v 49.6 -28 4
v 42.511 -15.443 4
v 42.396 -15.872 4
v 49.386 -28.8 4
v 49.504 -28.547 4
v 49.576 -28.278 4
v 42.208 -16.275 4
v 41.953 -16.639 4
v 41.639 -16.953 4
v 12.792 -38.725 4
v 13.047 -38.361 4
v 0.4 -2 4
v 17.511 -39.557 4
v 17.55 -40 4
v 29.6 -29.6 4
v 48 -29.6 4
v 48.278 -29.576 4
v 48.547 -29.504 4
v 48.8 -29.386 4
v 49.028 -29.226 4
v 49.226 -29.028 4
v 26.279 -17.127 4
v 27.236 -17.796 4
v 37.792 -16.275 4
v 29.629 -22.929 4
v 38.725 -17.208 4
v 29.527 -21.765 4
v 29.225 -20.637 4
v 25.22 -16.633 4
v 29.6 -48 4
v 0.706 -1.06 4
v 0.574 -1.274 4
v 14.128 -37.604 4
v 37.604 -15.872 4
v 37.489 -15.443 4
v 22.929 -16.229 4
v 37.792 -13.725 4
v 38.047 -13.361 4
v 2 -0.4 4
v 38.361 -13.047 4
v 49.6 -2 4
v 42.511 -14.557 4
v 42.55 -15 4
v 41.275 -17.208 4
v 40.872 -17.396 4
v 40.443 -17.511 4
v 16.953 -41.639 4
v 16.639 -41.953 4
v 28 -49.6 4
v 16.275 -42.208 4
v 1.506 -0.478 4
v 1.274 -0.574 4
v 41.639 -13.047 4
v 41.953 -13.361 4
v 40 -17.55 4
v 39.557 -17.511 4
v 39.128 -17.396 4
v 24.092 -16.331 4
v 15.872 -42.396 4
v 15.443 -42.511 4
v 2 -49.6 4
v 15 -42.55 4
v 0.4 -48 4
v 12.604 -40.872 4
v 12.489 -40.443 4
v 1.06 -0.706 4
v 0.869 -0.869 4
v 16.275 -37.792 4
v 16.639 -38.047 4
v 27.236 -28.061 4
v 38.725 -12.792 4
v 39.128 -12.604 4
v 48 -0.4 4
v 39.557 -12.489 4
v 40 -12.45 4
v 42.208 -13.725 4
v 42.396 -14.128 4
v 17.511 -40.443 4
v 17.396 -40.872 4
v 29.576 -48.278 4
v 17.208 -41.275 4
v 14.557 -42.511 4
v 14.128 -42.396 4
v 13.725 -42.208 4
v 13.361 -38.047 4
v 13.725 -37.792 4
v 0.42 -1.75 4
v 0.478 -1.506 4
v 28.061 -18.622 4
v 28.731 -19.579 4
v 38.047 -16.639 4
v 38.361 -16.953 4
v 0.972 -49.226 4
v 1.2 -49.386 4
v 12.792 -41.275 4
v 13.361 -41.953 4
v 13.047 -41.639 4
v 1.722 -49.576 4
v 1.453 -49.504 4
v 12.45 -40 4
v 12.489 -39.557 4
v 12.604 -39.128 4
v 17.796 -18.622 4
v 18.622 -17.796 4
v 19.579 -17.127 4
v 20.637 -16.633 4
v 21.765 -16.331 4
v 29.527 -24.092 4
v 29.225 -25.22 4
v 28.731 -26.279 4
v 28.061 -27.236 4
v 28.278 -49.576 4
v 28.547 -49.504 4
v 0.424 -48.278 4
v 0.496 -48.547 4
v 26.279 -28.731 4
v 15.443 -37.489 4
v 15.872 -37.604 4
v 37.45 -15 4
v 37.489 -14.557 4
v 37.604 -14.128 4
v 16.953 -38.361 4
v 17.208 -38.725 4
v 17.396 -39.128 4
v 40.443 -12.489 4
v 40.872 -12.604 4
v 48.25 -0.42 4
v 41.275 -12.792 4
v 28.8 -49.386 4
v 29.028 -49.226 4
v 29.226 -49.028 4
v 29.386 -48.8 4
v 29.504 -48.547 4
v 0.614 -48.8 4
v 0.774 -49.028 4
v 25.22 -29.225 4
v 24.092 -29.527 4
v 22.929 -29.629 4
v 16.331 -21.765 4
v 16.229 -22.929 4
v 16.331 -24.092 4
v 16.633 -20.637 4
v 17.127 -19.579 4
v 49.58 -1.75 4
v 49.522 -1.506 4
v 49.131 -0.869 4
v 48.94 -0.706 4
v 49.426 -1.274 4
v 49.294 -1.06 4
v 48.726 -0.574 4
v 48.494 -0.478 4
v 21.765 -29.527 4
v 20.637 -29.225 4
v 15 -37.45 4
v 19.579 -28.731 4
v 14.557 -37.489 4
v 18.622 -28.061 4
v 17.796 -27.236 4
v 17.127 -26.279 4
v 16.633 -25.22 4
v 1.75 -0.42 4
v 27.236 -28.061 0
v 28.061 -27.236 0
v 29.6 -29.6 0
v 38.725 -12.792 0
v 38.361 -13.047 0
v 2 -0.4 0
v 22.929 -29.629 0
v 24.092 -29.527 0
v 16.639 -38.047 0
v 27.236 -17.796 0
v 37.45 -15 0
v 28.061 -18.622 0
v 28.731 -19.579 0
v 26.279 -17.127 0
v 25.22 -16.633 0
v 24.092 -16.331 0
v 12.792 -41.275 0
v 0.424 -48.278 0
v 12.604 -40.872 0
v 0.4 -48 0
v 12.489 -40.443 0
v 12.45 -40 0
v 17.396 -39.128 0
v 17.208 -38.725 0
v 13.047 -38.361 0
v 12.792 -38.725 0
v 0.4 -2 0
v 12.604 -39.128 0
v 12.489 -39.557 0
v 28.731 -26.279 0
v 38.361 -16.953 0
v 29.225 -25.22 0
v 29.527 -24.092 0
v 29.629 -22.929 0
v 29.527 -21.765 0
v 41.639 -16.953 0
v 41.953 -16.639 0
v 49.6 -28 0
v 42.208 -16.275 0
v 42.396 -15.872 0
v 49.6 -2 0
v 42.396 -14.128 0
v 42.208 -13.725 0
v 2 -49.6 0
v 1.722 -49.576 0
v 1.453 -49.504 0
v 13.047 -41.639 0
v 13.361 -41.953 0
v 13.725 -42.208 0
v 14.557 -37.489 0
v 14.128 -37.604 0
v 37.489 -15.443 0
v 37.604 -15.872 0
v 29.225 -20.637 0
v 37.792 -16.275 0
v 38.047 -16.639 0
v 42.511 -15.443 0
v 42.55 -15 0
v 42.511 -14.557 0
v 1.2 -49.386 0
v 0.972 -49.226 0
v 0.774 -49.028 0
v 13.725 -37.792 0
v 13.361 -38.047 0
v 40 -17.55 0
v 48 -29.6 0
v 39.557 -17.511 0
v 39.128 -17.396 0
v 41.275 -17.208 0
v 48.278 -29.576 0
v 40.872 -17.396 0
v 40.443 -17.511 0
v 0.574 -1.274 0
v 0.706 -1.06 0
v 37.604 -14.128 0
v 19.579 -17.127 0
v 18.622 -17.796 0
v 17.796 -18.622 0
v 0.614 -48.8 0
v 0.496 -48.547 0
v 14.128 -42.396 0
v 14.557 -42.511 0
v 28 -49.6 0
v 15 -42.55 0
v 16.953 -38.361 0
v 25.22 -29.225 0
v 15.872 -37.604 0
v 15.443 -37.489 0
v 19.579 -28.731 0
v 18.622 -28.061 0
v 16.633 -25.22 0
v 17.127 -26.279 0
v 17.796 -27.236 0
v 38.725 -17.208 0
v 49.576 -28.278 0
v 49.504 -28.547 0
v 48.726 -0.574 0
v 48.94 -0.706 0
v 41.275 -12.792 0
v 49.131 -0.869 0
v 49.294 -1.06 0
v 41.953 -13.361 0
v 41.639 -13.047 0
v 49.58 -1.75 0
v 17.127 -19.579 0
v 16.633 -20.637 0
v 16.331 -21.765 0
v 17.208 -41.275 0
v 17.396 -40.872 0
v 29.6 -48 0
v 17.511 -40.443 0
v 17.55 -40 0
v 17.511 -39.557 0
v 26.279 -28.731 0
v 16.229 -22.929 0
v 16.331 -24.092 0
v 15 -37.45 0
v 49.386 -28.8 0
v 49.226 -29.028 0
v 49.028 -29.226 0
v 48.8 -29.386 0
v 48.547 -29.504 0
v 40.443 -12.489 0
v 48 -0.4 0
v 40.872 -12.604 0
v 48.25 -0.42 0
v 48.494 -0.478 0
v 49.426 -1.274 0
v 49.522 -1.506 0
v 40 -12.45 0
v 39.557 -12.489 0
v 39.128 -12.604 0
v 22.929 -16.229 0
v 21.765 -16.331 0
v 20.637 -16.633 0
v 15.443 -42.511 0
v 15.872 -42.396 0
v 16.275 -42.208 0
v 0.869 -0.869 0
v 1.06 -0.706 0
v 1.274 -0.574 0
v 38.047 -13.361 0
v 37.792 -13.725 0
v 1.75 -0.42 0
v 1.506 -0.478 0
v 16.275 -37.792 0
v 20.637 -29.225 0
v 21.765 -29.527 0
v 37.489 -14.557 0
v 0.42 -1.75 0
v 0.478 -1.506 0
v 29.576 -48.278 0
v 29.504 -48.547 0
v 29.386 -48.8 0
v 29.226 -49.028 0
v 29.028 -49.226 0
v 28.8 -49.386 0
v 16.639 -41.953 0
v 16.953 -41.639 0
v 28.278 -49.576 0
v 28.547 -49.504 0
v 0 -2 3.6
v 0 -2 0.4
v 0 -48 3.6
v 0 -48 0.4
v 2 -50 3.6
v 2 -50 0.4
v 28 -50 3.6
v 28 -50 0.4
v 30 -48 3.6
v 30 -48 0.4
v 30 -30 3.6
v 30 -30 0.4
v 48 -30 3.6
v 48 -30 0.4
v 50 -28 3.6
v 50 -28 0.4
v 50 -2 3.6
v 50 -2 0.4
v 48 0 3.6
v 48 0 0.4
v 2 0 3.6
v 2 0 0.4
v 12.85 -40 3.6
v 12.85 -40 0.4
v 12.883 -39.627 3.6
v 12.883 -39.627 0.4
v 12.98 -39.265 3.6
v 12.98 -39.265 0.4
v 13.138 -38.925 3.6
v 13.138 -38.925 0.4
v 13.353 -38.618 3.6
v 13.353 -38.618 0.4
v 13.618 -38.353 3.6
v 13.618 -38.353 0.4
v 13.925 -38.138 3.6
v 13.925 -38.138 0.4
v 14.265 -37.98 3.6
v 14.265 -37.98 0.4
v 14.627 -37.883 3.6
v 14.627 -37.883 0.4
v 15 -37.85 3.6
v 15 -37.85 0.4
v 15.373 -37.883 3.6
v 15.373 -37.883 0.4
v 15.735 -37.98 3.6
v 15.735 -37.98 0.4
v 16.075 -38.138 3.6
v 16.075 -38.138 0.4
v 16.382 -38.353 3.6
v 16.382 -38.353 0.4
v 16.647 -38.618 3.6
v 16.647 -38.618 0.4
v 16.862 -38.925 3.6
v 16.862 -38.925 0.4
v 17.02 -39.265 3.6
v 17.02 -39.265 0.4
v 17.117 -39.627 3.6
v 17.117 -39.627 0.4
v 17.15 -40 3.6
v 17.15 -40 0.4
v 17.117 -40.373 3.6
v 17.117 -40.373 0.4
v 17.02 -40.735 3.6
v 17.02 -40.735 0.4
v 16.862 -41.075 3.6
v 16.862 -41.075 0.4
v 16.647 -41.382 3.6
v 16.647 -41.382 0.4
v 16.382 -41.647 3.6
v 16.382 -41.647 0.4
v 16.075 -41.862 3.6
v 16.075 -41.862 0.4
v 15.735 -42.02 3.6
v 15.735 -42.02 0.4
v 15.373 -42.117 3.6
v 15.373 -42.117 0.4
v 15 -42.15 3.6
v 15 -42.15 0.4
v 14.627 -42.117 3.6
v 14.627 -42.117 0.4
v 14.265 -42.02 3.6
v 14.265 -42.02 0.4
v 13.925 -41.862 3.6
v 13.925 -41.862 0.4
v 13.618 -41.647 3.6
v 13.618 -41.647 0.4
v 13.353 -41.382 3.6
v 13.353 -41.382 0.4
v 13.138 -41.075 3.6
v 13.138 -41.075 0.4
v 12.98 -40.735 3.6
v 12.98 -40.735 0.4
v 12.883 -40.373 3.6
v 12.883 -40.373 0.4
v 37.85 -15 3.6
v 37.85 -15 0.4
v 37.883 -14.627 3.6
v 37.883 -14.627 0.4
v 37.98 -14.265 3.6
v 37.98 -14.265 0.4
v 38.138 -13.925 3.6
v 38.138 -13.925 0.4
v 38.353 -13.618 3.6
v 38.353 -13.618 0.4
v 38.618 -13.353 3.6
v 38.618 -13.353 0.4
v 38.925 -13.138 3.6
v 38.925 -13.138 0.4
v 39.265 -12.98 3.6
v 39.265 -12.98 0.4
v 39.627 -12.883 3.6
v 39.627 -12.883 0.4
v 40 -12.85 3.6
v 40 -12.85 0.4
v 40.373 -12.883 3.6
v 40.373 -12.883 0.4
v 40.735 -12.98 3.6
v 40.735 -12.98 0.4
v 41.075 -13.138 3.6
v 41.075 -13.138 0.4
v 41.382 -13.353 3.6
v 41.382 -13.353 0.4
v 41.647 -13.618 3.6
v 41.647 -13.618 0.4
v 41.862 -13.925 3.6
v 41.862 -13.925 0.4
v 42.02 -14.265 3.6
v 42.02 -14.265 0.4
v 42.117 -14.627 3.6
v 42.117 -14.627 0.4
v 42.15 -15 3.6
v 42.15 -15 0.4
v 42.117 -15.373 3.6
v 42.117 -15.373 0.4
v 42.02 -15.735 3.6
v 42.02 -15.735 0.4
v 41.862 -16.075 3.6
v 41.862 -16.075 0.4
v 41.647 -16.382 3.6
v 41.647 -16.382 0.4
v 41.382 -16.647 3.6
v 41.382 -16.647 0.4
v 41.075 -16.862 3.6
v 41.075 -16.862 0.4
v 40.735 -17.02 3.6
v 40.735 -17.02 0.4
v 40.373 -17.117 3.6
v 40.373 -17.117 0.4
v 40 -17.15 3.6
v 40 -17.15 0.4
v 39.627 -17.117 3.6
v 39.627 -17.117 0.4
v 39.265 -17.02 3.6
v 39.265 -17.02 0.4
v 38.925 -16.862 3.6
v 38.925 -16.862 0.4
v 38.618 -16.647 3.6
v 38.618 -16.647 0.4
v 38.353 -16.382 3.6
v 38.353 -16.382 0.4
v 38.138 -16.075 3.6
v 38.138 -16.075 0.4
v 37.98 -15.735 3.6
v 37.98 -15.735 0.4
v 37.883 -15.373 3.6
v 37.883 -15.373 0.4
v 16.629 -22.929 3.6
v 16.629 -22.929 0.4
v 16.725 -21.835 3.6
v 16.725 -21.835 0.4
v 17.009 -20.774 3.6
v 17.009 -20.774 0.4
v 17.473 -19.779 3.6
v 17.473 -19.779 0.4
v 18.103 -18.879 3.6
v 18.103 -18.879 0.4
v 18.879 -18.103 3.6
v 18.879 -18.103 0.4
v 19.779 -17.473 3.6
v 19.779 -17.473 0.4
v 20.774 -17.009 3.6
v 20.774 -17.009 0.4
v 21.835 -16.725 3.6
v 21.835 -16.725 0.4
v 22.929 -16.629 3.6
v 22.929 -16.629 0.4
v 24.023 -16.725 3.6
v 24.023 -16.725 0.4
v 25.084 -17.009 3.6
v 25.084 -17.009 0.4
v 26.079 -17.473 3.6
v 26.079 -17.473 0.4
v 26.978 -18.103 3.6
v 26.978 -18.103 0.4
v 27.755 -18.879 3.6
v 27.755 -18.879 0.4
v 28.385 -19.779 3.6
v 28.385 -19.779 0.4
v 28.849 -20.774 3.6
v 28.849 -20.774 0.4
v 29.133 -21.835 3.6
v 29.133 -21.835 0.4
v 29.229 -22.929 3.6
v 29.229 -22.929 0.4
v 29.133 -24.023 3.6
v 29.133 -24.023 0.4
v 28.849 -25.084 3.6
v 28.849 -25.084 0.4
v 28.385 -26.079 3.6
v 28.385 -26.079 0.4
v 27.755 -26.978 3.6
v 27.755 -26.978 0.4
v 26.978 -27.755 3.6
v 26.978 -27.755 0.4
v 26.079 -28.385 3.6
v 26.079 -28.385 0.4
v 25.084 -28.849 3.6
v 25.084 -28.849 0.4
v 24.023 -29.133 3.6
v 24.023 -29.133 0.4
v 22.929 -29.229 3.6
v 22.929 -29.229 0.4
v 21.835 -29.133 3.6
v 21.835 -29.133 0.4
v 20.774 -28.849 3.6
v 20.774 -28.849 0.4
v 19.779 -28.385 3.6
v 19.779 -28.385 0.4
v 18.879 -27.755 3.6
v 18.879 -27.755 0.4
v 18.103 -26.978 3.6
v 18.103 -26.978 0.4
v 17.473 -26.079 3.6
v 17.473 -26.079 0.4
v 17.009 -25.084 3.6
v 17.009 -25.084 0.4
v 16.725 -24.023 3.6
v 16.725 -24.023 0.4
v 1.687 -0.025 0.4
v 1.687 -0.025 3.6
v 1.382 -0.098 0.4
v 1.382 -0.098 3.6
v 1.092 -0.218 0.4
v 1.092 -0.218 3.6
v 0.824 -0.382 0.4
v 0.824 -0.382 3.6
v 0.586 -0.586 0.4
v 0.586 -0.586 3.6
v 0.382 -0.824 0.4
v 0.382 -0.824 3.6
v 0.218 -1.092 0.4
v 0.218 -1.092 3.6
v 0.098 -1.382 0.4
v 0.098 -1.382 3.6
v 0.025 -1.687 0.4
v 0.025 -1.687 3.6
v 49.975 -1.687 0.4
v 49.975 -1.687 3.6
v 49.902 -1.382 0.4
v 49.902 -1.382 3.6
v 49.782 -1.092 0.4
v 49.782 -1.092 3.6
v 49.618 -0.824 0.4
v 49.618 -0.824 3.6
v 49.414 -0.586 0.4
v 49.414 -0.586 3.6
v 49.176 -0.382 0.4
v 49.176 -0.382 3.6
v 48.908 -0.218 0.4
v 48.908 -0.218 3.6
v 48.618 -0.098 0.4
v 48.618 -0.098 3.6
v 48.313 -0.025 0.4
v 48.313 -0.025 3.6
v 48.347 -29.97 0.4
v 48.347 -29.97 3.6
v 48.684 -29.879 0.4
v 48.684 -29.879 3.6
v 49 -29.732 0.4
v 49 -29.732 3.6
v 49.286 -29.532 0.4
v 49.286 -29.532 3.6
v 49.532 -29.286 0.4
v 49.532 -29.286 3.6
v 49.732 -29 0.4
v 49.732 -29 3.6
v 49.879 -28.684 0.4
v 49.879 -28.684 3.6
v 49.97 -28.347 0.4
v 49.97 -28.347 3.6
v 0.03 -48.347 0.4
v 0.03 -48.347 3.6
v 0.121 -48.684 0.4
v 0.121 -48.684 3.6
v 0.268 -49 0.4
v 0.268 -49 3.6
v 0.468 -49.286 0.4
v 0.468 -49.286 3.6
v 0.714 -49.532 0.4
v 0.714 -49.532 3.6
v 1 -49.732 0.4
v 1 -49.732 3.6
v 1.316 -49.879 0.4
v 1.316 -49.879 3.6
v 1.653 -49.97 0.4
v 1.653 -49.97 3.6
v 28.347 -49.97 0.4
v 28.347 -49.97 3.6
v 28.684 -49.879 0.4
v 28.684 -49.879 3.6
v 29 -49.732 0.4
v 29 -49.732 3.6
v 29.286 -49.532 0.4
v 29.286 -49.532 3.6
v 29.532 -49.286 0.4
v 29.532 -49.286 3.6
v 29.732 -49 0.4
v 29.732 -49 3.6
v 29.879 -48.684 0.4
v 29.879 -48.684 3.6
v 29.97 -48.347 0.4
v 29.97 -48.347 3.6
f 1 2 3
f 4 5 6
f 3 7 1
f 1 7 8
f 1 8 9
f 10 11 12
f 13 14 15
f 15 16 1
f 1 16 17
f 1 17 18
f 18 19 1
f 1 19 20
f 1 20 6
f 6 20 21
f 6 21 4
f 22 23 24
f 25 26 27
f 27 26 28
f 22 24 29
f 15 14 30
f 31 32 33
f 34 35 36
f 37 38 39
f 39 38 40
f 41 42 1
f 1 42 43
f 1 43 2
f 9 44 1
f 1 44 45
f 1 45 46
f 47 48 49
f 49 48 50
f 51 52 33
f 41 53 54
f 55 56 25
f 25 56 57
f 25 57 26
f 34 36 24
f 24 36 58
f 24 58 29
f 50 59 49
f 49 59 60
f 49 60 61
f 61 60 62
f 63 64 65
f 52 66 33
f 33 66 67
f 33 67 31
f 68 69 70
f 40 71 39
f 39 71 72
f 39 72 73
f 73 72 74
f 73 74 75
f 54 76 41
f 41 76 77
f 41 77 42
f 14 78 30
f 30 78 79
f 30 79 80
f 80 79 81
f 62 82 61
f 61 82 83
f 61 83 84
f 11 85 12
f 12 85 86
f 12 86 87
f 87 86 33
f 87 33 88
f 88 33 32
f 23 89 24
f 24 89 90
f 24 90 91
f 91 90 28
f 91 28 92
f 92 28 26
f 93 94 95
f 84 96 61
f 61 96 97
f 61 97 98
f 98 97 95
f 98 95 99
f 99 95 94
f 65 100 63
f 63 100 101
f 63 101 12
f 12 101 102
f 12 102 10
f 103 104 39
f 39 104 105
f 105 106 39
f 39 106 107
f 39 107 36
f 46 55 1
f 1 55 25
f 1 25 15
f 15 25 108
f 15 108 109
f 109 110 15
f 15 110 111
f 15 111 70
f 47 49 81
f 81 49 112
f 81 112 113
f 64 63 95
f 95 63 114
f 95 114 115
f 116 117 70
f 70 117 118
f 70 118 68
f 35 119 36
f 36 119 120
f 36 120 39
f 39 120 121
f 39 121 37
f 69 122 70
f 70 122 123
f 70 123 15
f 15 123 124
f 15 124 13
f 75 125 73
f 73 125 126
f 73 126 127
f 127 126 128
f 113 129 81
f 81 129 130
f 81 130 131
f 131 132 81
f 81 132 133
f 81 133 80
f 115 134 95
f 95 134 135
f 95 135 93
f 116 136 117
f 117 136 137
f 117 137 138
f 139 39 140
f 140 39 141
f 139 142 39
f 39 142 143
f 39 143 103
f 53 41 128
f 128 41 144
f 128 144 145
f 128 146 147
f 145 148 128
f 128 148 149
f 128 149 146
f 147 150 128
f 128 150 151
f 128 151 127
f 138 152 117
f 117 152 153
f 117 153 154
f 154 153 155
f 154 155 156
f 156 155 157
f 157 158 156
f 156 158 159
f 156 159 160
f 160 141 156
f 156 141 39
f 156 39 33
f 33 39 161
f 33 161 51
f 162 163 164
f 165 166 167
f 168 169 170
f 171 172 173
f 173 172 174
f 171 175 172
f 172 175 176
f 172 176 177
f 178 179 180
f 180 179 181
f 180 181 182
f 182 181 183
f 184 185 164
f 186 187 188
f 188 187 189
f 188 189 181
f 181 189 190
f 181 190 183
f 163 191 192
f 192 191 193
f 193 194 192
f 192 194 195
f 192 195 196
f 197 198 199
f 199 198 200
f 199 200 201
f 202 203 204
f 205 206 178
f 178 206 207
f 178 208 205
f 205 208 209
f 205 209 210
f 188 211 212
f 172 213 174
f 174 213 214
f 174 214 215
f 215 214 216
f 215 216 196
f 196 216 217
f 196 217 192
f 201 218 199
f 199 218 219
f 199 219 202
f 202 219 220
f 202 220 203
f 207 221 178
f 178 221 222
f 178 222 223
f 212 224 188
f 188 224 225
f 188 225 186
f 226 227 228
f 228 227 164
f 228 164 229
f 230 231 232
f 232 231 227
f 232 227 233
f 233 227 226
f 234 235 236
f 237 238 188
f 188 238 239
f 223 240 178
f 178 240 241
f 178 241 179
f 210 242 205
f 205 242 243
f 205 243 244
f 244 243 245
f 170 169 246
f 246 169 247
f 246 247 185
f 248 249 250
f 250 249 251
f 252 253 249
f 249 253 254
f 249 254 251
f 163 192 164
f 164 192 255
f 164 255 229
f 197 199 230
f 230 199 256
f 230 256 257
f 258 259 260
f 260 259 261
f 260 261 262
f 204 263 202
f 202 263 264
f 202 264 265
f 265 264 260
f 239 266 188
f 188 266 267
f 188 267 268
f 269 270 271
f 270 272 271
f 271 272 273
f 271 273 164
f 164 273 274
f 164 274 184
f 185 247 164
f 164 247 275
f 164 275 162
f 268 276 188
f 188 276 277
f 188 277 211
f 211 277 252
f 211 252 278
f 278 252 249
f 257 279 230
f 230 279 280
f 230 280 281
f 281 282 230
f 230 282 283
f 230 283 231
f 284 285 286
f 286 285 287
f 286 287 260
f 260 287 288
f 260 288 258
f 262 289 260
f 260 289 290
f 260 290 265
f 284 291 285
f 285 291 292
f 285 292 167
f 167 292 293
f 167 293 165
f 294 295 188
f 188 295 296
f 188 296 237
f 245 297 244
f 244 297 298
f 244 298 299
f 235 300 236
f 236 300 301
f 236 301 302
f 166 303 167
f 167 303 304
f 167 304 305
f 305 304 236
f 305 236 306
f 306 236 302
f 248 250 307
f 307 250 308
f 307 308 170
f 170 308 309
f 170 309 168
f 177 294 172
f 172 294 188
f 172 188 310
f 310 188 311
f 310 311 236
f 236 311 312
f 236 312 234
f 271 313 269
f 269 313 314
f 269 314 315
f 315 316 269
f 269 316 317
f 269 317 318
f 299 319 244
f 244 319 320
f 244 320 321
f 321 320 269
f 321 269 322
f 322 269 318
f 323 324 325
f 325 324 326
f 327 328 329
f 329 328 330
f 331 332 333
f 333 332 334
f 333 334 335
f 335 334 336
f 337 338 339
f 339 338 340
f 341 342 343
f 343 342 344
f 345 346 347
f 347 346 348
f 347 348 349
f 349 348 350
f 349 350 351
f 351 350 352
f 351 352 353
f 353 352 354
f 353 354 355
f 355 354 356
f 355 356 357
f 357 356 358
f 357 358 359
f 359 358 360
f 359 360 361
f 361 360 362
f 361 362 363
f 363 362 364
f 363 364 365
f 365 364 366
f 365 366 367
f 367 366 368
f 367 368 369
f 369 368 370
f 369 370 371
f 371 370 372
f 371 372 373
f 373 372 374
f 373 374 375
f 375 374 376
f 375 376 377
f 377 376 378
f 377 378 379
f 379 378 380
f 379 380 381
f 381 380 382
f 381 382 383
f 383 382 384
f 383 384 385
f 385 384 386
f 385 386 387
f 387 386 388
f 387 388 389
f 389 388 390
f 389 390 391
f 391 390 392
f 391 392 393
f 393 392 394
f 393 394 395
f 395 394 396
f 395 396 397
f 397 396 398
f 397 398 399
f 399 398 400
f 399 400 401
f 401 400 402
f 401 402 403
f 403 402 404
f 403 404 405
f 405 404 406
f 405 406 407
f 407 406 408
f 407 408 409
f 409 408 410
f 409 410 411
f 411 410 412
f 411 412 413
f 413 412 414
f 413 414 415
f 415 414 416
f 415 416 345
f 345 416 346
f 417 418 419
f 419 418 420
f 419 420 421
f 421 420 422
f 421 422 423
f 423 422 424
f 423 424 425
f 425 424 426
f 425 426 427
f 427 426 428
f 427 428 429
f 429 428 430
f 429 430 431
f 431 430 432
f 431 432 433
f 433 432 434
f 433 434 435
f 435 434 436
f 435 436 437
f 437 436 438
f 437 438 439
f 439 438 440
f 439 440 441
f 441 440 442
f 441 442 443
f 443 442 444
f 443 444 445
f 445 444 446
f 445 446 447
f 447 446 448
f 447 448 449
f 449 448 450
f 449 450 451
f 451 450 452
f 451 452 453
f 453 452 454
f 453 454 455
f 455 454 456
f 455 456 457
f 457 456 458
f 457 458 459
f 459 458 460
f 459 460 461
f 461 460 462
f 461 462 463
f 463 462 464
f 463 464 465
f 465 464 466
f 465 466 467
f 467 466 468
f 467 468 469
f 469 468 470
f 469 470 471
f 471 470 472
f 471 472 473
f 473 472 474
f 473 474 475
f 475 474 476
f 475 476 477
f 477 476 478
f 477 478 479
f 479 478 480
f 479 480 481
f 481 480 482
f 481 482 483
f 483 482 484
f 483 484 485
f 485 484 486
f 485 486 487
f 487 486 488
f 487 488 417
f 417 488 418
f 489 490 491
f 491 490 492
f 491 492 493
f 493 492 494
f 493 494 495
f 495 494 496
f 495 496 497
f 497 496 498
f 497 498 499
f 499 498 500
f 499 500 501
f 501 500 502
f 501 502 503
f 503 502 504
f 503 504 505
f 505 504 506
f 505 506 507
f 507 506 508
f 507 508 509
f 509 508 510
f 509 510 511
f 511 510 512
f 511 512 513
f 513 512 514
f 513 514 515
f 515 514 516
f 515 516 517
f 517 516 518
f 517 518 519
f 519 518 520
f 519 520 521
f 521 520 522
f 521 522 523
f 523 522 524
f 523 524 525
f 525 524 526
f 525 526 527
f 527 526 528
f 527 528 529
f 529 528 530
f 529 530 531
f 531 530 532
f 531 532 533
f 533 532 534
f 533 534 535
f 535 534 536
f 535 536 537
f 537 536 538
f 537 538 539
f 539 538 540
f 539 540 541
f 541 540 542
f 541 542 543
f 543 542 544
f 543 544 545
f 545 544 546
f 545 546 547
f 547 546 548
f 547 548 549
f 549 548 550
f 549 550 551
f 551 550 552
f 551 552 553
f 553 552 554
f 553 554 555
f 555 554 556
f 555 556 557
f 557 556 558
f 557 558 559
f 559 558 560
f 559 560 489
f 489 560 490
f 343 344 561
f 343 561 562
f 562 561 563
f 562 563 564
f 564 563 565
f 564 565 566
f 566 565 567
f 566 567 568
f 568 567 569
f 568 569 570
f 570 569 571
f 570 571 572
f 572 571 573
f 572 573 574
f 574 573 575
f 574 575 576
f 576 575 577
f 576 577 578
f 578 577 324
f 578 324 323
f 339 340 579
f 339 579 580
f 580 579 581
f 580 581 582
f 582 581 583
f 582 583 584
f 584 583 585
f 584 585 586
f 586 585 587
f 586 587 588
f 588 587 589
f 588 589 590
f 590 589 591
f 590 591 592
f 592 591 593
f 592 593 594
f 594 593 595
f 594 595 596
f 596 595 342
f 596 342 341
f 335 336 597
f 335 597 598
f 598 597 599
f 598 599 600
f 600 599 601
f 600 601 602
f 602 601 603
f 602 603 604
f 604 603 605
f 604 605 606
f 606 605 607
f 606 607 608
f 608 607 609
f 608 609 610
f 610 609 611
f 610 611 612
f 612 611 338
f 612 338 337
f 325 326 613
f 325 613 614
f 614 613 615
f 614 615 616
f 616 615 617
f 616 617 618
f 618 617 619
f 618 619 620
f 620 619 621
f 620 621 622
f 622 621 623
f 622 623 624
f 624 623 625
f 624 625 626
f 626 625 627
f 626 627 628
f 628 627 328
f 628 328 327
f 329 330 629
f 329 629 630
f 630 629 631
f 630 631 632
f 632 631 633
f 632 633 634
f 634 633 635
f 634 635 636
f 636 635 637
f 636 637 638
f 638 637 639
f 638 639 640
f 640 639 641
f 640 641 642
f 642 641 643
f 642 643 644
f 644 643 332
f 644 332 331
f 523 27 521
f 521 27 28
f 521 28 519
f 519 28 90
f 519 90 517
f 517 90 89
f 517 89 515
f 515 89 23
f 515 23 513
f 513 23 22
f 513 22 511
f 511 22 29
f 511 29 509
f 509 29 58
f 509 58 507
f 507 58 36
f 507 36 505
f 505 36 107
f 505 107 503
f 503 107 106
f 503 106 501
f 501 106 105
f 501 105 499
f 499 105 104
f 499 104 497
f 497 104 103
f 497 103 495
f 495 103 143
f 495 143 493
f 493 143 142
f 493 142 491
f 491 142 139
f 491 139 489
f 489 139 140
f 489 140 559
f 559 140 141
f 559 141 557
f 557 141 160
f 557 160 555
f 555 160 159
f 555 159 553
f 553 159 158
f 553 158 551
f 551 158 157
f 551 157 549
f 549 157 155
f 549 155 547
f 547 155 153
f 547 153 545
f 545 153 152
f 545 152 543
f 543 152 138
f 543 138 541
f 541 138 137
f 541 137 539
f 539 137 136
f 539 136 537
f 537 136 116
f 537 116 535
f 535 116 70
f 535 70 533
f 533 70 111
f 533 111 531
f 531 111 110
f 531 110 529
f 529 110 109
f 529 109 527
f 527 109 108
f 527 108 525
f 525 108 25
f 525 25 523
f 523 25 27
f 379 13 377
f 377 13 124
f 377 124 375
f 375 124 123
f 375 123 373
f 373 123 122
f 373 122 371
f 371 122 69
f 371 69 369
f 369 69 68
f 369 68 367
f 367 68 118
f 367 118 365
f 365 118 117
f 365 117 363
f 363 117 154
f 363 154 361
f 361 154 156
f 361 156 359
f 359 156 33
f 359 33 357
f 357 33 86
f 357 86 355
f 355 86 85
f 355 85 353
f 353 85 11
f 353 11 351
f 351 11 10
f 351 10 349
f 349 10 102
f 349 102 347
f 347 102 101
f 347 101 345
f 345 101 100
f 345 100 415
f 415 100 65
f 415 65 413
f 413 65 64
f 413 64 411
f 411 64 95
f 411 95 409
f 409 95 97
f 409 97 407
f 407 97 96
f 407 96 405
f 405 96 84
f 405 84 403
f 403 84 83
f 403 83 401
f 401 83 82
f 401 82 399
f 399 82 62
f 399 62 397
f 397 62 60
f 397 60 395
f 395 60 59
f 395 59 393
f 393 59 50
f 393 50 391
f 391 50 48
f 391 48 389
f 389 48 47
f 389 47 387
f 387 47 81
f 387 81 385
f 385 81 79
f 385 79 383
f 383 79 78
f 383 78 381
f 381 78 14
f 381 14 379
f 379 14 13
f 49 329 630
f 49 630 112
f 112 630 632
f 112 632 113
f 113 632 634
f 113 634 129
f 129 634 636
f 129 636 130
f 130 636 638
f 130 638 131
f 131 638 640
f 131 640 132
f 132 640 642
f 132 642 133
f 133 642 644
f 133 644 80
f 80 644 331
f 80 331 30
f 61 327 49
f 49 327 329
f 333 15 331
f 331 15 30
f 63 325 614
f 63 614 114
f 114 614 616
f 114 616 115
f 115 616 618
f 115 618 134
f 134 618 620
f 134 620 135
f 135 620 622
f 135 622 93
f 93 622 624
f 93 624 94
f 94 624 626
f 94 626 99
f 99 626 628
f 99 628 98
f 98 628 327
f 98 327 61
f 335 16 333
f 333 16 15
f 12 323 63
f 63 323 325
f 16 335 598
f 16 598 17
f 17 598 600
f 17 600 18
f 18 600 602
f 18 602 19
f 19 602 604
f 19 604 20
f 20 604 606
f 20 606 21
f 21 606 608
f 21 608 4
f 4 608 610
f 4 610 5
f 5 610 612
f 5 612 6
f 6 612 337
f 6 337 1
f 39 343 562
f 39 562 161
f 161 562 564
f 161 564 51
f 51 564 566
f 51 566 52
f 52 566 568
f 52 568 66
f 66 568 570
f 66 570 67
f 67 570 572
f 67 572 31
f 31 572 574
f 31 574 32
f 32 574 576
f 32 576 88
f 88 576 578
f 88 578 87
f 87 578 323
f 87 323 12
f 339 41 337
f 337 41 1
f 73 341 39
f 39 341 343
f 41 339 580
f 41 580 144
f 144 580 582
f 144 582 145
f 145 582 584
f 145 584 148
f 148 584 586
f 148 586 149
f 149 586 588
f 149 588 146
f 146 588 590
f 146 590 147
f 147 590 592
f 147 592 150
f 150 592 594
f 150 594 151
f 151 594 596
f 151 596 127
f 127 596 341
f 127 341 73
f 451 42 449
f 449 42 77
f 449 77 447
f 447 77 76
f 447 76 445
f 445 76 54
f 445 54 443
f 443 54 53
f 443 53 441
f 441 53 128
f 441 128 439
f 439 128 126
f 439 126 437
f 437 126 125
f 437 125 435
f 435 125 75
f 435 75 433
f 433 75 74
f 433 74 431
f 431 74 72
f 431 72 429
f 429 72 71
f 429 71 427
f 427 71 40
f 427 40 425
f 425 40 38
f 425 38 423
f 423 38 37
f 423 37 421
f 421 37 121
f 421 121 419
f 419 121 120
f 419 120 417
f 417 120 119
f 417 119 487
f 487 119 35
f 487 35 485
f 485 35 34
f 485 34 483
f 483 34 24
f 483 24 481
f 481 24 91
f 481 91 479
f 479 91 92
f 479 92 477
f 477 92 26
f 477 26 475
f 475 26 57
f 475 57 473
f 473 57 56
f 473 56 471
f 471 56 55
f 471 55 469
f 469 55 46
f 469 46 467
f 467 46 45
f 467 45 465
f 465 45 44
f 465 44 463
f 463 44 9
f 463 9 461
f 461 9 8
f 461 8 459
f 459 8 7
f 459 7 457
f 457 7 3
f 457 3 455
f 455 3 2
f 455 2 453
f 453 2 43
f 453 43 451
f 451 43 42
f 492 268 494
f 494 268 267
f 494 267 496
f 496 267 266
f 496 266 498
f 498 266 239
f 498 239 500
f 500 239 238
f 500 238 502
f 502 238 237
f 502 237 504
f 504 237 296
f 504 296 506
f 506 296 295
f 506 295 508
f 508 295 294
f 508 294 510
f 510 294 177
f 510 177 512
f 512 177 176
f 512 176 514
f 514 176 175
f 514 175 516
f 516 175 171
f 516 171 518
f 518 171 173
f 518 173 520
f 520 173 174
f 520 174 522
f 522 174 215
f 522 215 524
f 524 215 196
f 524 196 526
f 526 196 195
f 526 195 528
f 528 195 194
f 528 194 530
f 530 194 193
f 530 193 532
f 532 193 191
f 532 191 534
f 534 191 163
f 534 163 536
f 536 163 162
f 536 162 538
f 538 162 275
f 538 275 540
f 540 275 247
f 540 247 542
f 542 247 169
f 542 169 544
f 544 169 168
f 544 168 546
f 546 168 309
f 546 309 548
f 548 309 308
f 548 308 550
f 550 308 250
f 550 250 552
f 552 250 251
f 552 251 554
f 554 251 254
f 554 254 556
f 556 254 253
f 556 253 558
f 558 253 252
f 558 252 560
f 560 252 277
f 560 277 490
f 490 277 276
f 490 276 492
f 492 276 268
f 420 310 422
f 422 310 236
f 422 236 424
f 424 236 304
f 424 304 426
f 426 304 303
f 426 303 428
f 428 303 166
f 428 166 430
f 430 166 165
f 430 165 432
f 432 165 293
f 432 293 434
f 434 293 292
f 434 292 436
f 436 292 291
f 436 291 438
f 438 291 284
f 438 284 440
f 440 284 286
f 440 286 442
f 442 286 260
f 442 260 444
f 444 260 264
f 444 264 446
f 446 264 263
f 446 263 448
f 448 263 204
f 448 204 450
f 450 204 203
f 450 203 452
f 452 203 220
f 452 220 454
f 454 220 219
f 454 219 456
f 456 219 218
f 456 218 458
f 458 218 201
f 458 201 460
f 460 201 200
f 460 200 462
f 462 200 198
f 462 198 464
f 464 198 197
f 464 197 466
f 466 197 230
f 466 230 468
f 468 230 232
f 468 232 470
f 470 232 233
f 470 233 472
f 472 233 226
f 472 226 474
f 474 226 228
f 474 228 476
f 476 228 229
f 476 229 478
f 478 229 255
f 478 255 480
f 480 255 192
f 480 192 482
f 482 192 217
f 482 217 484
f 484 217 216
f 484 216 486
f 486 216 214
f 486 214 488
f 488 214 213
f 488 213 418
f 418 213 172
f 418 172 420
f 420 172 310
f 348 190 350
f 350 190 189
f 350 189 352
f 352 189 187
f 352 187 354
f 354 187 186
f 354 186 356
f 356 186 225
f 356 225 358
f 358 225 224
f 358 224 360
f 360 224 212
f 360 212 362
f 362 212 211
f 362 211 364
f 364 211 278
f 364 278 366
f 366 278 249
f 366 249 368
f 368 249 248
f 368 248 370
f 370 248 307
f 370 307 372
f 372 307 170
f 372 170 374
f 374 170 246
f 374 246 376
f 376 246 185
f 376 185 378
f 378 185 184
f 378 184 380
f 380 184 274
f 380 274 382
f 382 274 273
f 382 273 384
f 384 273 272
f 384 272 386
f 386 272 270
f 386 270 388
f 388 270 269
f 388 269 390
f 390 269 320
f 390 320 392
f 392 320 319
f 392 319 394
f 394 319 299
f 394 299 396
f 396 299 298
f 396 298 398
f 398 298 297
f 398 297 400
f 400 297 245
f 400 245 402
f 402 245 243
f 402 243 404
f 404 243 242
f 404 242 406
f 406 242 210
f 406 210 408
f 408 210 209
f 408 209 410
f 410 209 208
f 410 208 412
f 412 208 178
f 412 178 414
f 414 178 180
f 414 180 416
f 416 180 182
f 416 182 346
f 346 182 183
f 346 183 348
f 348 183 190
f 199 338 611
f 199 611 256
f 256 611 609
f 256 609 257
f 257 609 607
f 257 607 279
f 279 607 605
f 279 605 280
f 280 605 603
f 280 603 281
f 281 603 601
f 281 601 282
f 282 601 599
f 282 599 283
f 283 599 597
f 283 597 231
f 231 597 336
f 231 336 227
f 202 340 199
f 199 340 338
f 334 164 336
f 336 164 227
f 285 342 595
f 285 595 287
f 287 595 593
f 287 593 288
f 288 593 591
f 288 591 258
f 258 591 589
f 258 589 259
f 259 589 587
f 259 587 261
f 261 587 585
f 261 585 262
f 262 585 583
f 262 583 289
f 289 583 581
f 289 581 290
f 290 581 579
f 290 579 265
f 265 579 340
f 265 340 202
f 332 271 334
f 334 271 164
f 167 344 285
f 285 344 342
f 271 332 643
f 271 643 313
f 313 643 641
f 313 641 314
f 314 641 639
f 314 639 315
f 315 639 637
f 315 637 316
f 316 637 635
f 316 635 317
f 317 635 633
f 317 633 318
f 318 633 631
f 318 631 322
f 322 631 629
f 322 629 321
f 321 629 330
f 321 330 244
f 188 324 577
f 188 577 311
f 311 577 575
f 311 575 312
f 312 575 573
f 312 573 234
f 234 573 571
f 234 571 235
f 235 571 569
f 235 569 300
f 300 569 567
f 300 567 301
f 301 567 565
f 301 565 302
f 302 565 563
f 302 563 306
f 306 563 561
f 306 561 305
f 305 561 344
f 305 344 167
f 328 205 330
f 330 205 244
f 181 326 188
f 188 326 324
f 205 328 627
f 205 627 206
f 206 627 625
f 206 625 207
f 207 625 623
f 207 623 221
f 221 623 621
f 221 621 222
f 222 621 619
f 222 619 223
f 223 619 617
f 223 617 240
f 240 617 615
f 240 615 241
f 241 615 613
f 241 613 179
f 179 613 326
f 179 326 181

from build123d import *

# Parameters (mm, degrees)
SKETCH1_R           = 2.15
SKETCH1_R_2         = 6.3
BOSS_EXTRUDE1_DEPTH = 4
FILLET1_R           = 2
CHAMFER1_SIZE       = 0.4


with BuildPart() as part:
    # Sketch1 → Boss-Extrude1 (new body)
    with BuildSketch(Plane.XY):
        Polygon((0, -50), (30, -50), (30, -30), (50, -30), (50, 0), (0, 0), align=None)
        with Locations((15, -40)):
            Circle(SKETCH1_R, mode=Mode.SUBTRACT)
        with Locations((40, -15)):
            Circle(SKETCH1_R, mode=Mode.SUBTRACT)
        with Locations((22.928932188, -22.928932188)):
            Circle(SKETCH1_R_2, mode=Mode.SUBTRACT)
    extrude(amount=BOSS_EXTRUDE1_DEPTH)

    # Fillet1
    fillet1_edges = [part.edges().sort_by_distance(p)[0] for p in [
        (0, 0, 2),
        (50, 0, 2),
        (50, -30, 2),
        (30, -50, 2),
        (0, -50, 2),
    ]]
    fillet(fillet1_edges, radius=FILLET1_R)

    # Chamfer1
    chamfer1_edges = [part.edges().sort_by_distance(p)[0] for p in [
        (39, -30, 4),
        (12.85, -40, 0),
        (12.85, -40, 4),
        (37.85, -15, 0),
        (37.85, -15, 4),
        (16.628932188, -22.928932188, 0),
        (16.628932188, -22.928932188, 4),
        (0, -25, 0),
        (0, -25, 4),
        (25, 0, 0),
        (50, -15, 0),
        (30, -39, 0),
        (15, -50, 0),
        (29.414213562, -49.414213562, 0),
        (0.585786438, -49.414213562, 0),
        (49.414213562, -29.414213562, 0),
        (49.414213562, -0.585786438, 0),
        (0.585786438, -0.585786438, 0),
        (25, 0, 4),
        (15, -50, 4),
        (30, -39, 4),
        (50, -15, 4),
        (29.414213562, -49.414213562, 4),
        (0.585786438, -49.414213562, 4),
        (49.414213562, -29.414213562, 4),
        (49.414213562, -0.585786438, 4),
        (0.585786438, -0.585786438, 4),
        (39, -30, 0),
    ]]
    chamfer(chamfer1_edges, length=CHAMFER1_SIZE)


solid = part.part
